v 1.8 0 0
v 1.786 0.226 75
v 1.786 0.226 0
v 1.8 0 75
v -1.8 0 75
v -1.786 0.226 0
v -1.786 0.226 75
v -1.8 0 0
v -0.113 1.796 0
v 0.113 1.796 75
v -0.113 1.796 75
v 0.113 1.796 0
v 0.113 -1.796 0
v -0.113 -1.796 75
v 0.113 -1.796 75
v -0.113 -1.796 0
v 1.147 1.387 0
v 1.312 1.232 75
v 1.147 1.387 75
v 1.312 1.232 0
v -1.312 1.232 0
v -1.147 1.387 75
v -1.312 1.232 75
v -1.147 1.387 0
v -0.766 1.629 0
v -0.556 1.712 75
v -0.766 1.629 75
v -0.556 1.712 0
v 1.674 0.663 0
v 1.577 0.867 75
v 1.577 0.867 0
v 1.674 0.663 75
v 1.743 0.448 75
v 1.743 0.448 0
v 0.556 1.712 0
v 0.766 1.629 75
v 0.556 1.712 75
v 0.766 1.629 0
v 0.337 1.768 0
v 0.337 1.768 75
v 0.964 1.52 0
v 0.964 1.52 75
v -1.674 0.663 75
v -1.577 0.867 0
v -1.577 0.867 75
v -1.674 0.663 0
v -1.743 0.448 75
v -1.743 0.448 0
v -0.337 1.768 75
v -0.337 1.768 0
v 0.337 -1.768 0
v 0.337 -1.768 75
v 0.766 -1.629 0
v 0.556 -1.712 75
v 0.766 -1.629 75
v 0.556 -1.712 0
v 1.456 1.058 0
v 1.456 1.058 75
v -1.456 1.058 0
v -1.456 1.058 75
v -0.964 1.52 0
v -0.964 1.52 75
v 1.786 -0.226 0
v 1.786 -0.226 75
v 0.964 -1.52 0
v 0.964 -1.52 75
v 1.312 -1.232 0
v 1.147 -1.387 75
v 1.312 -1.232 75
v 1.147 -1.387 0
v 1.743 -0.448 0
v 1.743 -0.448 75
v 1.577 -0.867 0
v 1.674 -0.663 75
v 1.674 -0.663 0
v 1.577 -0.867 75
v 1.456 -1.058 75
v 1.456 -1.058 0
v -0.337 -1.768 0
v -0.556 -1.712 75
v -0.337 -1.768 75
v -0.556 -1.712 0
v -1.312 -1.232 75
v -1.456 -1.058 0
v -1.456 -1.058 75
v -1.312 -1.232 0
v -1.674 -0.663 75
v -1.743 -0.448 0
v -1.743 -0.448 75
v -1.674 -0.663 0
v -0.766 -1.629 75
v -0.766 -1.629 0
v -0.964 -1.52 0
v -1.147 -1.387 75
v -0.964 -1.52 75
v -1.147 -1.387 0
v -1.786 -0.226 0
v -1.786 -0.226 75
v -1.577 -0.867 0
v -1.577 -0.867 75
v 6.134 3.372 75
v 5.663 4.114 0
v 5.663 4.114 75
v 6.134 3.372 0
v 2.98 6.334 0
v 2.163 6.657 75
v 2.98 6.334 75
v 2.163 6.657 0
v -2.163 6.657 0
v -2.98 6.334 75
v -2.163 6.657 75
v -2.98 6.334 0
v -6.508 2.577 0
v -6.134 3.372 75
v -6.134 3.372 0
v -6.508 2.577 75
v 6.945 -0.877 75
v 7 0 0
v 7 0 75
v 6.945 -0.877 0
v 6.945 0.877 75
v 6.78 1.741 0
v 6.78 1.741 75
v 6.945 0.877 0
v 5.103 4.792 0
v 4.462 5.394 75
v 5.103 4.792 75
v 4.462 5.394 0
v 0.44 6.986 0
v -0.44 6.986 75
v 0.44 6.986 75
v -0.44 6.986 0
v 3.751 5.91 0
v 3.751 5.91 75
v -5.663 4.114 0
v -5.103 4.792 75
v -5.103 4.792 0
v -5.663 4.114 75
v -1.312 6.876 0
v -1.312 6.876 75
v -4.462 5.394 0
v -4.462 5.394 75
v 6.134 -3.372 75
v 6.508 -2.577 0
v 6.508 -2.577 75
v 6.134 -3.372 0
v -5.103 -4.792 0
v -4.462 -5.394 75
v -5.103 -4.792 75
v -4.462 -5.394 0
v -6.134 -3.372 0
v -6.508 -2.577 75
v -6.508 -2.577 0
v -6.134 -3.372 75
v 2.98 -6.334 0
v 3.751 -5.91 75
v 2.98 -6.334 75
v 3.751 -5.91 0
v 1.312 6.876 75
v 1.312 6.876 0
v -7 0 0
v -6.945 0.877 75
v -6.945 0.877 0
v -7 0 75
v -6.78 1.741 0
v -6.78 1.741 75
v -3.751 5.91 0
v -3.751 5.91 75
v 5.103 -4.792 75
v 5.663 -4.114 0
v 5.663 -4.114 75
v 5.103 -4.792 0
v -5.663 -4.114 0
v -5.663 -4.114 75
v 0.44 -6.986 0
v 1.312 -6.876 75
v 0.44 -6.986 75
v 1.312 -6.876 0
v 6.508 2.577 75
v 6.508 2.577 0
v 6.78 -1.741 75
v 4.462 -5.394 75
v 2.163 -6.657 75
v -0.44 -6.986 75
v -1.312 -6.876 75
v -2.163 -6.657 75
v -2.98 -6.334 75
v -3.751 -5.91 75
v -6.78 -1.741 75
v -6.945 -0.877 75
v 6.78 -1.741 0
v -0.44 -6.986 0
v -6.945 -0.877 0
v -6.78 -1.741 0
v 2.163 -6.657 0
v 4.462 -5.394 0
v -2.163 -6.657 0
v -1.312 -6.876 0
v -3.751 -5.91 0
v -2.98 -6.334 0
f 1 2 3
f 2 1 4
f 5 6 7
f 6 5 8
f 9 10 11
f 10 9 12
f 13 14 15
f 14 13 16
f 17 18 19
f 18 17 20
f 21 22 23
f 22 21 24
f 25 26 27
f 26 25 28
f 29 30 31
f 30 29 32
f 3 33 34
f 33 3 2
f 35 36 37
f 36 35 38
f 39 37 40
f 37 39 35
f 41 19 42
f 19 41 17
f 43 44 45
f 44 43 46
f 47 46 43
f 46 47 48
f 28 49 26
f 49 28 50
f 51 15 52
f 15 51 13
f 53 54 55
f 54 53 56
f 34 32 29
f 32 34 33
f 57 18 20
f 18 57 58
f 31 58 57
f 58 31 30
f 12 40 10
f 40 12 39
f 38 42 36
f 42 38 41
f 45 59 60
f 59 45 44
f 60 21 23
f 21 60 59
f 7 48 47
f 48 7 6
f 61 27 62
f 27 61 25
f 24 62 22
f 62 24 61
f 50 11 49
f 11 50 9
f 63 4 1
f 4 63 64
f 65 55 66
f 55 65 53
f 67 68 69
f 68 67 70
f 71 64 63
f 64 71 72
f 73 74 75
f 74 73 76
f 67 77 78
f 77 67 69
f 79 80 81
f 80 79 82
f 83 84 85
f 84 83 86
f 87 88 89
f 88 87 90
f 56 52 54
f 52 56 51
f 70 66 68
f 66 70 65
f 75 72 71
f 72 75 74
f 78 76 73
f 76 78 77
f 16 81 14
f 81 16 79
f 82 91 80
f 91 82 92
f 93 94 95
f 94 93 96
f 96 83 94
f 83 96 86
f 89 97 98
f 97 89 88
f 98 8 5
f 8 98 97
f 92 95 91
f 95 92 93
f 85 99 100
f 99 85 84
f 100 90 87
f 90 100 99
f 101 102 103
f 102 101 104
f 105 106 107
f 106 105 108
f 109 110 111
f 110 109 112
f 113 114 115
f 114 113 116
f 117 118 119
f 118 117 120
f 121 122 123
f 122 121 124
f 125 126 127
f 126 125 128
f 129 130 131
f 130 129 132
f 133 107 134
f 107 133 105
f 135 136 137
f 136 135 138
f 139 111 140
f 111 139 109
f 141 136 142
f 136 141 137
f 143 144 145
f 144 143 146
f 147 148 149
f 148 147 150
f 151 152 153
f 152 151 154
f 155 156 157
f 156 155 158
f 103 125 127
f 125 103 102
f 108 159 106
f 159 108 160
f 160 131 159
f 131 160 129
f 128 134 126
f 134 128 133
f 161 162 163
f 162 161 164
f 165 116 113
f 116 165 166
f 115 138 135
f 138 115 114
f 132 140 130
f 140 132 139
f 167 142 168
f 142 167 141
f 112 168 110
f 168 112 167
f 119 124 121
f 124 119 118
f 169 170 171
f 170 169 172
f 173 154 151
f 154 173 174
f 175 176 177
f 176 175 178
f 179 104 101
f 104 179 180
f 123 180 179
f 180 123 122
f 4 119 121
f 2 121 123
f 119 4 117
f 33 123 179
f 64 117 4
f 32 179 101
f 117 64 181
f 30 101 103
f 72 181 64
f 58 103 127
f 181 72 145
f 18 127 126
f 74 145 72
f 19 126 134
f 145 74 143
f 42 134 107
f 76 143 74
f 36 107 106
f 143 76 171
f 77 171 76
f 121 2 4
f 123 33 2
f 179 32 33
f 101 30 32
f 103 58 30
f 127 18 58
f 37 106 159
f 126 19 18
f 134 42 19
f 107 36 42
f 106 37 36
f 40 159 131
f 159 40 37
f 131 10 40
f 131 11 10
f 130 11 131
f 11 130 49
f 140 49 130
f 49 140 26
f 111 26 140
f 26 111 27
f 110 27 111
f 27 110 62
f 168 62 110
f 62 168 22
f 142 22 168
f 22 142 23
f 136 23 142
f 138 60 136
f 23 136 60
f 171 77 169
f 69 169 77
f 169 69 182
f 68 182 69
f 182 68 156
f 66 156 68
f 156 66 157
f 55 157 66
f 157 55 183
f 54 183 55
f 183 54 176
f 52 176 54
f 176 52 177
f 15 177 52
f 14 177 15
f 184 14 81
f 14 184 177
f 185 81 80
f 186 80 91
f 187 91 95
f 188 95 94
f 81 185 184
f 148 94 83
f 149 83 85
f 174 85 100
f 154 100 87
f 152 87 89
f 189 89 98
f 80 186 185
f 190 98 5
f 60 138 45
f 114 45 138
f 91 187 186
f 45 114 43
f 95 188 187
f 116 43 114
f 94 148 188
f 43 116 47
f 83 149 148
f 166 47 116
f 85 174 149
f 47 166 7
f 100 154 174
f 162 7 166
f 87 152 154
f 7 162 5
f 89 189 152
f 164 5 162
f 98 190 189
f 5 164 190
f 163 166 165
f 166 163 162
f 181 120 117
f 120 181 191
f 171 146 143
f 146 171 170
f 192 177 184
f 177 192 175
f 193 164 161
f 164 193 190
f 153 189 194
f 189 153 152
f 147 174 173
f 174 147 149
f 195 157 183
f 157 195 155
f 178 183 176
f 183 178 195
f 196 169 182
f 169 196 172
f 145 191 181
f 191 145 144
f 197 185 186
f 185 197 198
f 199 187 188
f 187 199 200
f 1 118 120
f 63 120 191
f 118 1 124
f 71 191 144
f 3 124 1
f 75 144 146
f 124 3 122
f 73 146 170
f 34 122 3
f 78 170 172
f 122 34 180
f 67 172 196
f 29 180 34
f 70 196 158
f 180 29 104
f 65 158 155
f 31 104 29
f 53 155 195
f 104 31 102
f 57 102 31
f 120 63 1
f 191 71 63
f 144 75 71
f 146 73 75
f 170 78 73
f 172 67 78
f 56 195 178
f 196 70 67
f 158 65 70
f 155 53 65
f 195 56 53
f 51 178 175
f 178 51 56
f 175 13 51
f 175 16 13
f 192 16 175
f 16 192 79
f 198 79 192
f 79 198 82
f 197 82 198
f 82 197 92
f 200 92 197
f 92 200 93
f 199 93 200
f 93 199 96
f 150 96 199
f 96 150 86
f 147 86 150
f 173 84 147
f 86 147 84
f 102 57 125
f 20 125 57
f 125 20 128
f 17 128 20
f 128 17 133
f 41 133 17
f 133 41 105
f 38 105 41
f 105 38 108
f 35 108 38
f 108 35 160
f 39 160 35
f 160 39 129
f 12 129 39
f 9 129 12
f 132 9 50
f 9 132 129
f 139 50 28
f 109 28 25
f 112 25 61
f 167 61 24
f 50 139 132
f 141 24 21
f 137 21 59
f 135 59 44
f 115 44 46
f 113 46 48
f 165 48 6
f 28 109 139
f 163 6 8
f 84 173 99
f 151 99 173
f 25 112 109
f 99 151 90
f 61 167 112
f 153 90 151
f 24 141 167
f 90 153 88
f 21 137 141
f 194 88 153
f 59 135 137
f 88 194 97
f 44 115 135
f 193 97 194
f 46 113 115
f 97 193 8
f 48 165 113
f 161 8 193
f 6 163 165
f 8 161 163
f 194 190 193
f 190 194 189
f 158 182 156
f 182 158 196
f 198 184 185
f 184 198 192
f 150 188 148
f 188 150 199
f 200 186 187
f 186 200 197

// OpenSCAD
$fn = 50;


difference() {
	union() {
		cylinder(h = 75, r = 7.0000000000);
	}
	union() {
		translate(v = [0, 0, -100]) {
			cylinder(h = 200, r = 1.8000000000);
		}
		translate(v = [0, 0, -100]) {
			cylinder(h = 200, r = 1.8000000000);
		}
	}
}
